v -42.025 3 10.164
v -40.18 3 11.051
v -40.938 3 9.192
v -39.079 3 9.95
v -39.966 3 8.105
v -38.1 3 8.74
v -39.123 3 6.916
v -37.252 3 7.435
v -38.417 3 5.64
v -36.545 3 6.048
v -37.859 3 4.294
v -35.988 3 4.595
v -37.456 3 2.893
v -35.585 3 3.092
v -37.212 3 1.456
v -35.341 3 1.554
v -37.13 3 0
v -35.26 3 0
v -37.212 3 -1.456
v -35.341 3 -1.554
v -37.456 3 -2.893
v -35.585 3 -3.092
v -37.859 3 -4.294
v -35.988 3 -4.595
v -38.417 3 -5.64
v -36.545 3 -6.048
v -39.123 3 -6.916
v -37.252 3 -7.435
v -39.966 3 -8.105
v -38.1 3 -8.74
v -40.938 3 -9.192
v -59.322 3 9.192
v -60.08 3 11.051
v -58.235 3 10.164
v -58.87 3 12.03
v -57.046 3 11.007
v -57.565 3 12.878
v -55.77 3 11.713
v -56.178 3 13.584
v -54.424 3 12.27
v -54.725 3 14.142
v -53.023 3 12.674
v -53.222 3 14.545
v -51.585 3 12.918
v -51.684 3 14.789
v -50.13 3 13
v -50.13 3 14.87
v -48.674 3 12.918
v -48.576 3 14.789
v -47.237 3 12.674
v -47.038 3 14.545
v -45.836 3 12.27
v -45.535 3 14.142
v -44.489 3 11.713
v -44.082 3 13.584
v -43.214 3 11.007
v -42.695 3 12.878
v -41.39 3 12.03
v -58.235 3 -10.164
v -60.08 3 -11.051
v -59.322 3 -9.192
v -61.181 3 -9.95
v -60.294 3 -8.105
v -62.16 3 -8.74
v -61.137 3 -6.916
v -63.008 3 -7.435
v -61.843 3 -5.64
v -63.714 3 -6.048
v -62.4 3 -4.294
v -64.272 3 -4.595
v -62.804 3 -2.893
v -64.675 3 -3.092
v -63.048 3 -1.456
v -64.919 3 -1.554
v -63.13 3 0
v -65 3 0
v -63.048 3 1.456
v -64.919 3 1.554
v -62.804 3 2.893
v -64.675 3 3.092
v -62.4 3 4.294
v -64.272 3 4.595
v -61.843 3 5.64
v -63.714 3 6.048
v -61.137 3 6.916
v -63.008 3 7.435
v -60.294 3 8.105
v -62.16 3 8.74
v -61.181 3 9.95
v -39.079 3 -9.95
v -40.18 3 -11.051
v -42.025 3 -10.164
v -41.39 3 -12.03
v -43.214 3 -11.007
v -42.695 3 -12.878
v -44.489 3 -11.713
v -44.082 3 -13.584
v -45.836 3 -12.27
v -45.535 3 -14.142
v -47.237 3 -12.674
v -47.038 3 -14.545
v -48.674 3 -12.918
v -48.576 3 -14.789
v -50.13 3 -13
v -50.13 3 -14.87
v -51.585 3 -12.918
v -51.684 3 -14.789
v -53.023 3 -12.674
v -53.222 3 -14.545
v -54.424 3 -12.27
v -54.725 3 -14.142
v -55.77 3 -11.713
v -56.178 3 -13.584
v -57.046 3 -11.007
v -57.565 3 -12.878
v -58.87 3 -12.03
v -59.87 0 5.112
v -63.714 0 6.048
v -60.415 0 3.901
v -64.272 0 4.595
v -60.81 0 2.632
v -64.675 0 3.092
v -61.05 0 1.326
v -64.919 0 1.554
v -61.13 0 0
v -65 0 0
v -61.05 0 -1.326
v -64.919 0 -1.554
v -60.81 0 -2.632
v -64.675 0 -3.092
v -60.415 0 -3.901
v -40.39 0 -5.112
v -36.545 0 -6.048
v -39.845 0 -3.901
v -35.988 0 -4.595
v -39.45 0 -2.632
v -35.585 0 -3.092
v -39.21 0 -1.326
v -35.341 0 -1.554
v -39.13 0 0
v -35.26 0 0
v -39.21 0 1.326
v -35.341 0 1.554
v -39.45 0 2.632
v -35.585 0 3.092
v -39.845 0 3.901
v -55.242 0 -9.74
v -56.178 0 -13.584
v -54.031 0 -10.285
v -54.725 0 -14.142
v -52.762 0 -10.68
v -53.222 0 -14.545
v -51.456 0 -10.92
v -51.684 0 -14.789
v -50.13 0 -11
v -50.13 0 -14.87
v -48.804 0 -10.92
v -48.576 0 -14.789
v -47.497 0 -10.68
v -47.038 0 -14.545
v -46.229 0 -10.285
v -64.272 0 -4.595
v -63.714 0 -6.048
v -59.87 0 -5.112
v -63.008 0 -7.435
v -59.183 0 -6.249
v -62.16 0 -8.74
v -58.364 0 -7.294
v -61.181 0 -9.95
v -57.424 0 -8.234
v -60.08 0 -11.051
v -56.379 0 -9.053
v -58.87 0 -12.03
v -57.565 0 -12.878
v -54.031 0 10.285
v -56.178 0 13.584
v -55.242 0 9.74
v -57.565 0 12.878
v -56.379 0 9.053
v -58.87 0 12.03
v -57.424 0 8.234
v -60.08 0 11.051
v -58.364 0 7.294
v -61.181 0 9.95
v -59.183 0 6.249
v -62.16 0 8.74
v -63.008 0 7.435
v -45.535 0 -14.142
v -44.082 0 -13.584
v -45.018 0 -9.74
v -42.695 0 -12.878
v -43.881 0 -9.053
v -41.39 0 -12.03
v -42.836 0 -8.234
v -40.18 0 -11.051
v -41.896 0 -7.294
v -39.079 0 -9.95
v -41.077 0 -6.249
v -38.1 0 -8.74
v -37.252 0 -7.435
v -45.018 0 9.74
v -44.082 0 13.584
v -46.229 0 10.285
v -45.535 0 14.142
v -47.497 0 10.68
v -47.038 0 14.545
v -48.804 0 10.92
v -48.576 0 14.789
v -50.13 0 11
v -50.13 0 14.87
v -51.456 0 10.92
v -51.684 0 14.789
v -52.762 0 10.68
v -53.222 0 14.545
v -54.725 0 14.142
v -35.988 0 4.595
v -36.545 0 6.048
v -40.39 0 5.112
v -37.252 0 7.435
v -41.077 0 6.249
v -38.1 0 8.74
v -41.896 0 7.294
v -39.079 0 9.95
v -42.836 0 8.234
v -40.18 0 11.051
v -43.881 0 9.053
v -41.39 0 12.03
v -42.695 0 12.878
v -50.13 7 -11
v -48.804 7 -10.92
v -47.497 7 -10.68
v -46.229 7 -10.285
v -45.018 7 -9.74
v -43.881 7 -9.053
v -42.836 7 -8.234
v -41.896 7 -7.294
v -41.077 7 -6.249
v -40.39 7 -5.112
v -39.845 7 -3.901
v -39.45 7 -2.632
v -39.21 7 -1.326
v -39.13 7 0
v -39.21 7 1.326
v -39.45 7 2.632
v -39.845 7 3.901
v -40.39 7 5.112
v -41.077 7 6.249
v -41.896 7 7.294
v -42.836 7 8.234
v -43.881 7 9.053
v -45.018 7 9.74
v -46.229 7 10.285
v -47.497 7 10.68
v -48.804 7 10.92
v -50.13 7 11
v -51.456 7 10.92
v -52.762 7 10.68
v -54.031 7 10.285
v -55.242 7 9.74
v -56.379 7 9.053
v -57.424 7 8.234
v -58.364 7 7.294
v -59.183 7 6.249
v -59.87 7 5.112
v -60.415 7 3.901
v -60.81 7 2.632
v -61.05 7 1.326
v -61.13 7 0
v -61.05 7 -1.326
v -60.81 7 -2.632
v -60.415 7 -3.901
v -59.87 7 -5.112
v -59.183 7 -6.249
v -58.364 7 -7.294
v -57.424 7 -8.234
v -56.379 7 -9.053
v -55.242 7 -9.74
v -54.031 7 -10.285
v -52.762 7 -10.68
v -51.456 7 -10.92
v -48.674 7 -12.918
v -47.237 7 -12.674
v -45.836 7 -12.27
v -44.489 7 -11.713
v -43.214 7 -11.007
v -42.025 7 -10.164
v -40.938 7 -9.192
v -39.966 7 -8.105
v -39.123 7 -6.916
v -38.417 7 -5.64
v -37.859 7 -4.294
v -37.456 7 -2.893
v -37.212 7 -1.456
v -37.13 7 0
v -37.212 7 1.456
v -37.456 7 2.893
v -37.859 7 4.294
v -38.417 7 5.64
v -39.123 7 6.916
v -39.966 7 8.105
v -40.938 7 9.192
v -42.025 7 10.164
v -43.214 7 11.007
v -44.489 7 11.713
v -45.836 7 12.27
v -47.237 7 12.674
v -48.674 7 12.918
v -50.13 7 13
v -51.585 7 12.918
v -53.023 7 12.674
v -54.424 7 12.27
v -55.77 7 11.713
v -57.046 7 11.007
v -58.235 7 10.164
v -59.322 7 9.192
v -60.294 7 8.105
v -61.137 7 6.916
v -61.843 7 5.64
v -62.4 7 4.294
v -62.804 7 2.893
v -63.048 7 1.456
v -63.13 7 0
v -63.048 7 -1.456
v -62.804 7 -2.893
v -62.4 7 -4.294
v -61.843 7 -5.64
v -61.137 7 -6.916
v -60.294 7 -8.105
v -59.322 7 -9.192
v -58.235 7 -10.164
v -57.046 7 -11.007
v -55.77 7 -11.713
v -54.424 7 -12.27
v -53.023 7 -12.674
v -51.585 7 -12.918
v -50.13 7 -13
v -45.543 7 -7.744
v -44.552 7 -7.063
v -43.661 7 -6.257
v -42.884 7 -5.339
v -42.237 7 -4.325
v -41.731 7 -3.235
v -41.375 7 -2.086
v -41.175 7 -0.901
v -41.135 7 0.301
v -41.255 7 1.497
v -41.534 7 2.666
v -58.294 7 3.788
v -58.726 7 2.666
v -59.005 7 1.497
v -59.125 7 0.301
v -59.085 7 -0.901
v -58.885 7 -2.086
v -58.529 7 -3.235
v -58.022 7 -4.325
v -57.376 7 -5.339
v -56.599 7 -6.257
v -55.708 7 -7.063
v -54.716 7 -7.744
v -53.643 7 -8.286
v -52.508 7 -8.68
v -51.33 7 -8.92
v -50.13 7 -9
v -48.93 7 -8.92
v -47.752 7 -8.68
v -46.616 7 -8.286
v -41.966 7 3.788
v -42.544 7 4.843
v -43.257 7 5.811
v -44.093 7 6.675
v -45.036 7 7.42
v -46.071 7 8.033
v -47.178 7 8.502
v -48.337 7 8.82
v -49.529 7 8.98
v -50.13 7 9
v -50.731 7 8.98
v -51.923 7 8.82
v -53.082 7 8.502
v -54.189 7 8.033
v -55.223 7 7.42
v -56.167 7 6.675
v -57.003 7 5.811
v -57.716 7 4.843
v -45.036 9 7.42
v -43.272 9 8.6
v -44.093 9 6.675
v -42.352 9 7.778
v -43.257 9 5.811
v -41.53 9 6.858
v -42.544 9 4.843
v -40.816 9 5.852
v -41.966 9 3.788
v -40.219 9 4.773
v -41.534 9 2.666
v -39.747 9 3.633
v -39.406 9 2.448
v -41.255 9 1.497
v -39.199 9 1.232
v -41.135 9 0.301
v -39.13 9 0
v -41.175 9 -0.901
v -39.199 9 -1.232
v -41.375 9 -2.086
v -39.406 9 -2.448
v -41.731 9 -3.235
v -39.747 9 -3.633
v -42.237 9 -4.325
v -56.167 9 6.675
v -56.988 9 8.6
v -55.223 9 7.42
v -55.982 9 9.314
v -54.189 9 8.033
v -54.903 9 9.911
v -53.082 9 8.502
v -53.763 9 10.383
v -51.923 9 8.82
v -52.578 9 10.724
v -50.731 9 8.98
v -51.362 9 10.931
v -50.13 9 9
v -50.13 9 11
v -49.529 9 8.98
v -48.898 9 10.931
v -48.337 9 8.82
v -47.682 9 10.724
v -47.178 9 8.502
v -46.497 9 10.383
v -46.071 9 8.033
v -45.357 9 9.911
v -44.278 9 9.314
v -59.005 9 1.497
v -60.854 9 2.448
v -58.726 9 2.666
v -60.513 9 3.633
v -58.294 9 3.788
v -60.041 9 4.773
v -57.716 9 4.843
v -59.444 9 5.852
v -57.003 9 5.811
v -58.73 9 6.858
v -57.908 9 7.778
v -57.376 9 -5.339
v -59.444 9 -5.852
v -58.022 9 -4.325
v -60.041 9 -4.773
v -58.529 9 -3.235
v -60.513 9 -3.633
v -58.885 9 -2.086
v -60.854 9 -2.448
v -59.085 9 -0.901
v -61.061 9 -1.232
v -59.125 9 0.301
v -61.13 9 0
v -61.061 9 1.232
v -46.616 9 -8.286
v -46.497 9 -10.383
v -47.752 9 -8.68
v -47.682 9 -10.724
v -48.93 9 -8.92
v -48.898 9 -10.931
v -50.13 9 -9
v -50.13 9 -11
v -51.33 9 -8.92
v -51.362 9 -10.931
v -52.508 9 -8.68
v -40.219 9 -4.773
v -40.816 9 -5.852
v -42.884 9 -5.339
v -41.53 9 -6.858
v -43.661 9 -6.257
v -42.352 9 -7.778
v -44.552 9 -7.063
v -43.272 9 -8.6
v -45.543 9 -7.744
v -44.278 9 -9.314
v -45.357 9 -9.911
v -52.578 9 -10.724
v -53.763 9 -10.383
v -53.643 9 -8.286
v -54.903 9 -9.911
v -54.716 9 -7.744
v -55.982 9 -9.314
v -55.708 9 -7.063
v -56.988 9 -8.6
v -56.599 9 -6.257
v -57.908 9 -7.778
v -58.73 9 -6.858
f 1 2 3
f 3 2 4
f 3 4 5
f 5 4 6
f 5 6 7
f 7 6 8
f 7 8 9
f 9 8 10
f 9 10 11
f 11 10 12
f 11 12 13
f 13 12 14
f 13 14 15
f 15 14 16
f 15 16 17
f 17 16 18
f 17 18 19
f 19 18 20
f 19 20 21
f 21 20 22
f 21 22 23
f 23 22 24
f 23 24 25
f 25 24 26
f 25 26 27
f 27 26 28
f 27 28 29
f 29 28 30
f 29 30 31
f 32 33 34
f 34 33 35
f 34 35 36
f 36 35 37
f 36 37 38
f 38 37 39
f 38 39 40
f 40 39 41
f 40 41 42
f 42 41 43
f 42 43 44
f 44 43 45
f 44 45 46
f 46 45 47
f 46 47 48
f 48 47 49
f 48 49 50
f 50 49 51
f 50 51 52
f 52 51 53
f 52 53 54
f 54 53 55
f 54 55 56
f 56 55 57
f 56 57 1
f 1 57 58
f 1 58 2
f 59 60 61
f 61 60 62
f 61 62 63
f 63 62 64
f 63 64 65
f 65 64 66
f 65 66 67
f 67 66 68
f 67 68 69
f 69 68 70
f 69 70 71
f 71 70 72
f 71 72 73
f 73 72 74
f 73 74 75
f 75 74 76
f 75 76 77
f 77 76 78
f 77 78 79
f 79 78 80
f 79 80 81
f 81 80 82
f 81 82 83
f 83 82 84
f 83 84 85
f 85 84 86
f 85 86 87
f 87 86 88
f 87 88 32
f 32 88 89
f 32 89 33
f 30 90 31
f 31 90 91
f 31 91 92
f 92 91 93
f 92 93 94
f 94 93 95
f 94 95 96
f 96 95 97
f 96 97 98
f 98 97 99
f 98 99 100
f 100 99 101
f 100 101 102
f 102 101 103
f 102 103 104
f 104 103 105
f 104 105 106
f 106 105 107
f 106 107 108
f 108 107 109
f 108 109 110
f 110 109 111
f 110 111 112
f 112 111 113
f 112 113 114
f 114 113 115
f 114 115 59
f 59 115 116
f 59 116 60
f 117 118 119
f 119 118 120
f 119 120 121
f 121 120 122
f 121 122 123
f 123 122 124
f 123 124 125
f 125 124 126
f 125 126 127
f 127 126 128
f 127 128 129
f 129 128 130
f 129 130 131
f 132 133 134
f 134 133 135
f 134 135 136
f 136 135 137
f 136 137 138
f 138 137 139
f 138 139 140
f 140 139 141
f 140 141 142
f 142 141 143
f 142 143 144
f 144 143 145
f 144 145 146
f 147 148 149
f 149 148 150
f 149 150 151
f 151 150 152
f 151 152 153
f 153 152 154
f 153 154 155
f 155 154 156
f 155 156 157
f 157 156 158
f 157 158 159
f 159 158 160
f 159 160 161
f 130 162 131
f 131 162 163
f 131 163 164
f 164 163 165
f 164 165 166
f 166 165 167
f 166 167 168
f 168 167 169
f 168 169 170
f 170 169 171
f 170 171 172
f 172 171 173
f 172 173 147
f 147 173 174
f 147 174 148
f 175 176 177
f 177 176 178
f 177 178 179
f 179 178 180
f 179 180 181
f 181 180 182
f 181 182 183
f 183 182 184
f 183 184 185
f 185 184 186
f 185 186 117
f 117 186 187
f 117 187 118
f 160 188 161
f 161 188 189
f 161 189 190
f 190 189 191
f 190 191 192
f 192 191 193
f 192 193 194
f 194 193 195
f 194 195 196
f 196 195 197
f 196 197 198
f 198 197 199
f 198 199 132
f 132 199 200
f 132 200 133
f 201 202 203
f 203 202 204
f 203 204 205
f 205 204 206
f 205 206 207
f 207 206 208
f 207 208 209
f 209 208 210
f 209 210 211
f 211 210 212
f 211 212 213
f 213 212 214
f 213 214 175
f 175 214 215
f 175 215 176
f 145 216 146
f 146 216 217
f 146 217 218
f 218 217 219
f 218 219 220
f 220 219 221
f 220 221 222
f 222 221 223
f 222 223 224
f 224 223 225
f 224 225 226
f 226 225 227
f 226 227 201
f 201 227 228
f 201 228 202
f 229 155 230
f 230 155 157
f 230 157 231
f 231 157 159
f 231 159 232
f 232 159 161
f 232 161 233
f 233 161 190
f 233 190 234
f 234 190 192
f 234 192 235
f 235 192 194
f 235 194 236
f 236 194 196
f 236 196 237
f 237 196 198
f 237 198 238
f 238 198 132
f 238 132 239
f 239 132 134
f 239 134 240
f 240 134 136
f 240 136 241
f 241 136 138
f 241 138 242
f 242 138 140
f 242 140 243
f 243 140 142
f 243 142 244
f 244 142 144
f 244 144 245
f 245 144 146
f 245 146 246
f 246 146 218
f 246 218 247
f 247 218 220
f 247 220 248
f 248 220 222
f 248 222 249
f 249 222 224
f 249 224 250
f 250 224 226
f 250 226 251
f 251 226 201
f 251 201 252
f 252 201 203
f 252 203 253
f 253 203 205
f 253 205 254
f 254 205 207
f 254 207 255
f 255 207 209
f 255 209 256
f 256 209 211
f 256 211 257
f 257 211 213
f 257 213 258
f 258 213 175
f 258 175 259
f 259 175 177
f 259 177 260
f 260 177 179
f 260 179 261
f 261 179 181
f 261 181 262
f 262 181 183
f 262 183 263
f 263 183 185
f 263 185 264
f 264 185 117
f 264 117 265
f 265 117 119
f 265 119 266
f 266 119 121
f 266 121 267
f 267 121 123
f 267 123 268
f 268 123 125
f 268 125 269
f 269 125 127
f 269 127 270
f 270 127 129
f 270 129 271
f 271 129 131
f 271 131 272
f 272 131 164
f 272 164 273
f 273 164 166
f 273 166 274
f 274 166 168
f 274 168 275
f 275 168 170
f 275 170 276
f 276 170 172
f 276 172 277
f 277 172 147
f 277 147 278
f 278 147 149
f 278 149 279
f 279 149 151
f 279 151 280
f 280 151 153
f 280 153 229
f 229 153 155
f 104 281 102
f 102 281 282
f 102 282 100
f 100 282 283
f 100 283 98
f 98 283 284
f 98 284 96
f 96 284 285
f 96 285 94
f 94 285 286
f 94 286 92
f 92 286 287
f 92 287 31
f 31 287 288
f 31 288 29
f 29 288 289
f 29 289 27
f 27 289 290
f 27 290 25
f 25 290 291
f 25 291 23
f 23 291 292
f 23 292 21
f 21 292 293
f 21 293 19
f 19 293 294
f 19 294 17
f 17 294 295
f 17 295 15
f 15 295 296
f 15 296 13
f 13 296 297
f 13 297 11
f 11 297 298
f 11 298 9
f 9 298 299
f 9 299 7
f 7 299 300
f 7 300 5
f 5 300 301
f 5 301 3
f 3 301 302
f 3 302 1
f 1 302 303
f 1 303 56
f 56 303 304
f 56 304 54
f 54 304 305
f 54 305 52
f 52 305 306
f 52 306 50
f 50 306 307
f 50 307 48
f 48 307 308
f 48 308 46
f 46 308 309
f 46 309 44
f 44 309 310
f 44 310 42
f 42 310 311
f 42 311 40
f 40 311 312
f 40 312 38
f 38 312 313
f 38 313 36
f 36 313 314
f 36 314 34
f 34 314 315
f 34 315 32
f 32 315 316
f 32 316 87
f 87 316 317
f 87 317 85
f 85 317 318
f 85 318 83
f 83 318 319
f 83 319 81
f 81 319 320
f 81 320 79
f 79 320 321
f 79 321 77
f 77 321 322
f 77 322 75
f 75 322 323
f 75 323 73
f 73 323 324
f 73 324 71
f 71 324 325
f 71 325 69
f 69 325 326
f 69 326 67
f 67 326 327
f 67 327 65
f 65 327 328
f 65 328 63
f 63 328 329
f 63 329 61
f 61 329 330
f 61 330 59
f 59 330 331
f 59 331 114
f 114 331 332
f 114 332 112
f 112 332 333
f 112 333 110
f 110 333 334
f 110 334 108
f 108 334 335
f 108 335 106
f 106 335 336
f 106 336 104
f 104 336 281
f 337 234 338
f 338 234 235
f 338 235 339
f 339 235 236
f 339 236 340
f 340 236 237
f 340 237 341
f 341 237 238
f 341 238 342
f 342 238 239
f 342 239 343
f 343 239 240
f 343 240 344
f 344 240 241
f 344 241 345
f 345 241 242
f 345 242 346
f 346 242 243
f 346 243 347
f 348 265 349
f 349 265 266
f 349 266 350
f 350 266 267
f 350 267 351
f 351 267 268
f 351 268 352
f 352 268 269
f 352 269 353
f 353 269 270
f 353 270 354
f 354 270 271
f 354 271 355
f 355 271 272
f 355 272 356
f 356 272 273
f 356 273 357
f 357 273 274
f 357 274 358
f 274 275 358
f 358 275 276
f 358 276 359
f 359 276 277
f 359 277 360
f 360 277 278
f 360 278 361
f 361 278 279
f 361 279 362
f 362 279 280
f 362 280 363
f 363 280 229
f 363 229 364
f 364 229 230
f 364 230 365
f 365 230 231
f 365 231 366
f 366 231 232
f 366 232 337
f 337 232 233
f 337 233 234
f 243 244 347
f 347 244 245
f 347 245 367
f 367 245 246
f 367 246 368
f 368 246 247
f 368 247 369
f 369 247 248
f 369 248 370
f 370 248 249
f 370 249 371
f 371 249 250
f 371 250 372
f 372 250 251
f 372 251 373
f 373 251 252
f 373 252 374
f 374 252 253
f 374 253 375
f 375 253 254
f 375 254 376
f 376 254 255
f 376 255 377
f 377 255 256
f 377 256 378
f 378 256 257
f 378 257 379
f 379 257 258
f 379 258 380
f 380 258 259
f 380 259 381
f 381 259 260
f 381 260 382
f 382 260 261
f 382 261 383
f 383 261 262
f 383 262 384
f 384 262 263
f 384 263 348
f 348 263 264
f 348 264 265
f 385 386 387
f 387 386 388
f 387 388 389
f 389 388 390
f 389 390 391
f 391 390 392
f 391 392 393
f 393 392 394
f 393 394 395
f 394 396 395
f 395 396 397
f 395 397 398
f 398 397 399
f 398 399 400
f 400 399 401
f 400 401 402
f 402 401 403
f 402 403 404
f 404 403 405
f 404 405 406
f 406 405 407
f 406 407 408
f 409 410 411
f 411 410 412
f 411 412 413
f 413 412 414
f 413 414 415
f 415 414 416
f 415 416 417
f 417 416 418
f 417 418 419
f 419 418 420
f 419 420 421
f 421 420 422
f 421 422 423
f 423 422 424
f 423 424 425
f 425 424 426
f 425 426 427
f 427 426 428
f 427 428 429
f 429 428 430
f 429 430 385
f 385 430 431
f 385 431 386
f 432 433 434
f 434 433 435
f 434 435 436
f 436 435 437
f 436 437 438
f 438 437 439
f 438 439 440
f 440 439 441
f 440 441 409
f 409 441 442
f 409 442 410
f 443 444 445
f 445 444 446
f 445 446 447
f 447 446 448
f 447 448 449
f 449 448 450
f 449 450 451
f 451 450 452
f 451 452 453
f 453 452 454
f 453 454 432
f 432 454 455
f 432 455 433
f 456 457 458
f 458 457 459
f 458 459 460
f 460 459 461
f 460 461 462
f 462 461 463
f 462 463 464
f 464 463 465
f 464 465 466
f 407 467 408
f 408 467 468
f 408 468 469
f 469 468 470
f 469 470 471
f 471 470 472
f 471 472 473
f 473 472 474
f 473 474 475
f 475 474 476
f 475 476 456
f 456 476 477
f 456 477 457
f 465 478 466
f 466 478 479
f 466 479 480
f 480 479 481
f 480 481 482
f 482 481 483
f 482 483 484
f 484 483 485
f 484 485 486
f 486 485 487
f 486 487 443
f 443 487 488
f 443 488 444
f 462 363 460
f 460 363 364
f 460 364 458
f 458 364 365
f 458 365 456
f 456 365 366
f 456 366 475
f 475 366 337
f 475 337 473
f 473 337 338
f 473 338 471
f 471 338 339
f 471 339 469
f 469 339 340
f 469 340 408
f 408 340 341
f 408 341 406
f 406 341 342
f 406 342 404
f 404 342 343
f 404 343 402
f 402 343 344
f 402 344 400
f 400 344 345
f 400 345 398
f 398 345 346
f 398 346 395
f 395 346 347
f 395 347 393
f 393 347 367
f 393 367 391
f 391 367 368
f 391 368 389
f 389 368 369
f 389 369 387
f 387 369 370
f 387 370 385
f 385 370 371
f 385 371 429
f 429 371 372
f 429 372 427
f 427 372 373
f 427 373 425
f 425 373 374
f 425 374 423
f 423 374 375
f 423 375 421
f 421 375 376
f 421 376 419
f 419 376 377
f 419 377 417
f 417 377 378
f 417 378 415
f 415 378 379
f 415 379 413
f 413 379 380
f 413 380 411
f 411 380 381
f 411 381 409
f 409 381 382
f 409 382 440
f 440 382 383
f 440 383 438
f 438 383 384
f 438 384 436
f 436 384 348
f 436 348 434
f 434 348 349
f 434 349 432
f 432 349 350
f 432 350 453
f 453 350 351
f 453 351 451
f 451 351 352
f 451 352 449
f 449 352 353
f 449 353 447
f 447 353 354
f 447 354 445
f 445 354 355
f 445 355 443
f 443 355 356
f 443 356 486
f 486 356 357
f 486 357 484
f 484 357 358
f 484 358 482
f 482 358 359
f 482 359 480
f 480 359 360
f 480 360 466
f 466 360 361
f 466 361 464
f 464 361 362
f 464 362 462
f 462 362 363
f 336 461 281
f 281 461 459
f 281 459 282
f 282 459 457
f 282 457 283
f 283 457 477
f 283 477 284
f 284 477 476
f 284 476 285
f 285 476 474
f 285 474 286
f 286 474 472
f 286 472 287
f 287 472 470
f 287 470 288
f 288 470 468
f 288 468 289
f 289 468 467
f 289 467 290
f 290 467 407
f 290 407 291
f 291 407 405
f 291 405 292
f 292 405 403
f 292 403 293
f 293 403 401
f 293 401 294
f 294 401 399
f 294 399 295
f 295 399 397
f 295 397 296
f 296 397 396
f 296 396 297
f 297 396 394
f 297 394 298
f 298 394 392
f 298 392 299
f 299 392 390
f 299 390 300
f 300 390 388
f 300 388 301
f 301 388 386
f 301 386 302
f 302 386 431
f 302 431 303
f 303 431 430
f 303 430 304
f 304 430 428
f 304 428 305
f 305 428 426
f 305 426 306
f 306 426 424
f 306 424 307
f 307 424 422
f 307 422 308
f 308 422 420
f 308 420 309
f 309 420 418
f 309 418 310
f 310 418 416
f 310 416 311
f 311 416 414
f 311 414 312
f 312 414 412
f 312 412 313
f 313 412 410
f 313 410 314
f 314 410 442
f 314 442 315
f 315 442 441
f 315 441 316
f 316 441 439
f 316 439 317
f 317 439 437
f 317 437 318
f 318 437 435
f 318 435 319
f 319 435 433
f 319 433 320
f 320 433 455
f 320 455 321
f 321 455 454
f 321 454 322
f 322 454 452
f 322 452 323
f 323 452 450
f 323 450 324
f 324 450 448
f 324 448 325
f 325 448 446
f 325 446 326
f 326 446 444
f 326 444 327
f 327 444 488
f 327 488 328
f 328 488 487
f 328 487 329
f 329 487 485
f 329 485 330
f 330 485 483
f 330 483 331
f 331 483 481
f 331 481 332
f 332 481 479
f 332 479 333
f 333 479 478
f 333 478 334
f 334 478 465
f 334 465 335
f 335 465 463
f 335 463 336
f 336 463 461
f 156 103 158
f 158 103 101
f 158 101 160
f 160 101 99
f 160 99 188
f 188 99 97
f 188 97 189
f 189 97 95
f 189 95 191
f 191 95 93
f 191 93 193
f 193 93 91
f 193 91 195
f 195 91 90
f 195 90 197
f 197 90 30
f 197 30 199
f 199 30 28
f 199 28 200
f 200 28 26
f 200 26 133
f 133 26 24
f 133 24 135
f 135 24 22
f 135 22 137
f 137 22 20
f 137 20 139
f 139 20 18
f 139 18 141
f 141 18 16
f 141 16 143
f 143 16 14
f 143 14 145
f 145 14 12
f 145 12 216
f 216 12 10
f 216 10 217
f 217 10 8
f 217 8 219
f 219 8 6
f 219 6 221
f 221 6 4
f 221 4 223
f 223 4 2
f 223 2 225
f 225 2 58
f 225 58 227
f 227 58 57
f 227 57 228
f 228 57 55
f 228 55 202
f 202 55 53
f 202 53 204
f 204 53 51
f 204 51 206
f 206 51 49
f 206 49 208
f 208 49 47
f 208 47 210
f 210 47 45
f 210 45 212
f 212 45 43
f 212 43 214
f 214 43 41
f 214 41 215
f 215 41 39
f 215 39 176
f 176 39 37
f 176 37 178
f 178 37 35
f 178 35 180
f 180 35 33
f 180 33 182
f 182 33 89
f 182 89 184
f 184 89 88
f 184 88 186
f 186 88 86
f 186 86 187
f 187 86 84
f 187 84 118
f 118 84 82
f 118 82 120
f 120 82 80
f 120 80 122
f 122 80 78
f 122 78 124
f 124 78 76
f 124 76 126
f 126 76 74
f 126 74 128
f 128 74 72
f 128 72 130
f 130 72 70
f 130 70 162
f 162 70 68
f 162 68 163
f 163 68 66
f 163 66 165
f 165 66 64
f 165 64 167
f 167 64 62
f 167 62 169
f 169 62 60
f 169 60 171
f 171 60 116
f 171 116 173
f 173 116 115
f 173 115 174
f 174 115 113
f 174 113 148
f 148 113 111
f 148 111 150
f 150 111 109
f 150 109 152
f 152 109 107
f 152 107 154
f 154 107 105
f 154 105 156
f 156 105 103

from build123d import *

# Parameters (mm, degrees)
CROQUIS1_R                 = 11
CROQUIS1_R_2               = 2
CROQUIS1_W                 = 30
CROQUIS1_H                 = 3
SALIENTE_EXTRUIR1_DEPTH    = 3
CROQUIS2_R                 = 13
CROQUIS2_R_2               = 11
SALIENTE_EXTRUIR2_DEPTH    = 4
CROQUIS3_R                 = 13
CROQUIS3_R_2               = 9
SALIENTE_EXTRUIR3_DEPTH    = 2
CHAFL_N1_SIZE              = 2
CHAFL_N2_SIZE              = 10
CORTAR_EXTRUIR1_DEPTH      = 10
CORTAR_EXTRUIR1_DEPTH_BACK = 10
CROQUIS4_OUTSIDE_W         = 165.218
CROQUIS4_OUTSIDE_H         = 70.218
CROQUIS4_OUTSIDE_R         = 14.870057098


with BuildPart() as part:
    # Croquis1 → Saliente-Extruir1 (new body)
    with BuildSketch(Plane(origin=(0, 0, 0), x_dir=(1, 0, 0), z_dir=(0, 1, 0))):
        Polygon((65, 10), (70, 15), (70, -15), (65, -10), (65, -20), (-65, -20), (-65, 20), (65, 20), align=None)
        with Locations(Location((-50.129942902, 0, 0), (0, 0, 270))):
            Circle(CROQUIS1_R, mode=Mode.SUBTRACT)
        with Locations(Location((-28.595127909, 0, 0), (0, 0, 270))):
            Circle(CROQUIS1_R_2, mode=Mode.SUBTRACT)
        with Locations(Location((-13.595127909, 0, 0), (0, 0, 270))):
            Circle(CROQUIS1_R_2, mode=Mode.SUBTRACT)
        with Locations(Location((50, 0, 0), (0, 0, 270))):
            Circle(CROQUIS1_R_2, mode=Mode.SUBTRACT)
        with Locations((25, 11)):
            Rectangle(CROQUIS1_W, CROQUIS1_H, mode=Mode.SUBTRACT)
        with Locations((25, -11)):
            Rectangle(CROQUIS1_W, CROQUIS1_H, mode=Mode.SUBTRACT)
    extrude(amount=SALIENTE_EXTRUIR1_DEPTH)

    # Croquis2 → Saliente-Extruir2 (add)
    with BuildSketch(Plane(origin=(0, 3, 0), x_dir=(1, 0, 0), z_dir=(0, 1, 0))):
        with Locations(Location((-50.129942902, 0, 0), (0, 0, 90))):
            Circle(CROQUIS2_R)
        with Locations(Location((-50.129942902, 0, 0), (0, 0, 270))):
            Circle(CROQUIS2_R_2, mode=Mode.SUBTRACT)
    extrude(amount=SALIENTE_EXTRUIR2_DEPTH)

    # Croquis3 → Saliente-Extruir3 (add)
    with BuildSketch(Plane(origin=(0, 7, 0), x_dir=(1, 0, 0), z_dir=(0, 1, 0))):
        with Locations(Location((-50.129942902, 0, 0), (0, 0, 90))):
            Circle(CROQUIS3_R)
        with Locations(Location((-50.129942902, 0, 0), (0, 0, 270))):
            Circle(CROQUIS3_R_2, mode=Mode.SUBTRACT)
    extrude(amount=SALIENTE_EXTRUIR3_DEPTH)

    # Chaflán1
    chafl_n1_edges = [part.edges().sort_by_distance(p)[0] for p in [
        (-50.129942902, 9, 13),
    ]]
    chamfer(chafl_n1_edges, length=CHAFL_N1_SIZE)

    # Chaflán2
    chafl_n2_edges = [part.edges().sort_by_distance(p)[0] for p in [
        (-65, 1.5, 20),
        (-65, 1.5, -20),
    ]]
    chamfer(chafl_n2_edges, length=CHAFL_N2_SIZE)

    # Croquis4 outside → Cortar-Extruir1 (cut, two sides: drawn at the far end of the back side and taken through both)
    with BuildSketch(Plane(origin=(0, 3, 0), x_dir=(1, 0, 0), z_dir=(0, 1, 0)).offset(-CORTAR_EXTRUIR1_DEPTH_BACK)):
        with Locations((2.5, 0)):
            Rectangle(CROQUIS4_OUTSIDE_W, CROQUIS4_OUTSIDE_H)
        with Locations(Location((-50.129942902, 0, 0), (0, 0, 90))):
            Circle(CROQUIS4_OUTSIDE_R, mode=Mode.SUBTRACT)
    extrude(amount=CORTAR_EXTRUIR1_DEPTH + CORTAR_EXTRUIR1_DEPTH_BACK, mode=Mode.SUBTRACT)


solid = part.part
